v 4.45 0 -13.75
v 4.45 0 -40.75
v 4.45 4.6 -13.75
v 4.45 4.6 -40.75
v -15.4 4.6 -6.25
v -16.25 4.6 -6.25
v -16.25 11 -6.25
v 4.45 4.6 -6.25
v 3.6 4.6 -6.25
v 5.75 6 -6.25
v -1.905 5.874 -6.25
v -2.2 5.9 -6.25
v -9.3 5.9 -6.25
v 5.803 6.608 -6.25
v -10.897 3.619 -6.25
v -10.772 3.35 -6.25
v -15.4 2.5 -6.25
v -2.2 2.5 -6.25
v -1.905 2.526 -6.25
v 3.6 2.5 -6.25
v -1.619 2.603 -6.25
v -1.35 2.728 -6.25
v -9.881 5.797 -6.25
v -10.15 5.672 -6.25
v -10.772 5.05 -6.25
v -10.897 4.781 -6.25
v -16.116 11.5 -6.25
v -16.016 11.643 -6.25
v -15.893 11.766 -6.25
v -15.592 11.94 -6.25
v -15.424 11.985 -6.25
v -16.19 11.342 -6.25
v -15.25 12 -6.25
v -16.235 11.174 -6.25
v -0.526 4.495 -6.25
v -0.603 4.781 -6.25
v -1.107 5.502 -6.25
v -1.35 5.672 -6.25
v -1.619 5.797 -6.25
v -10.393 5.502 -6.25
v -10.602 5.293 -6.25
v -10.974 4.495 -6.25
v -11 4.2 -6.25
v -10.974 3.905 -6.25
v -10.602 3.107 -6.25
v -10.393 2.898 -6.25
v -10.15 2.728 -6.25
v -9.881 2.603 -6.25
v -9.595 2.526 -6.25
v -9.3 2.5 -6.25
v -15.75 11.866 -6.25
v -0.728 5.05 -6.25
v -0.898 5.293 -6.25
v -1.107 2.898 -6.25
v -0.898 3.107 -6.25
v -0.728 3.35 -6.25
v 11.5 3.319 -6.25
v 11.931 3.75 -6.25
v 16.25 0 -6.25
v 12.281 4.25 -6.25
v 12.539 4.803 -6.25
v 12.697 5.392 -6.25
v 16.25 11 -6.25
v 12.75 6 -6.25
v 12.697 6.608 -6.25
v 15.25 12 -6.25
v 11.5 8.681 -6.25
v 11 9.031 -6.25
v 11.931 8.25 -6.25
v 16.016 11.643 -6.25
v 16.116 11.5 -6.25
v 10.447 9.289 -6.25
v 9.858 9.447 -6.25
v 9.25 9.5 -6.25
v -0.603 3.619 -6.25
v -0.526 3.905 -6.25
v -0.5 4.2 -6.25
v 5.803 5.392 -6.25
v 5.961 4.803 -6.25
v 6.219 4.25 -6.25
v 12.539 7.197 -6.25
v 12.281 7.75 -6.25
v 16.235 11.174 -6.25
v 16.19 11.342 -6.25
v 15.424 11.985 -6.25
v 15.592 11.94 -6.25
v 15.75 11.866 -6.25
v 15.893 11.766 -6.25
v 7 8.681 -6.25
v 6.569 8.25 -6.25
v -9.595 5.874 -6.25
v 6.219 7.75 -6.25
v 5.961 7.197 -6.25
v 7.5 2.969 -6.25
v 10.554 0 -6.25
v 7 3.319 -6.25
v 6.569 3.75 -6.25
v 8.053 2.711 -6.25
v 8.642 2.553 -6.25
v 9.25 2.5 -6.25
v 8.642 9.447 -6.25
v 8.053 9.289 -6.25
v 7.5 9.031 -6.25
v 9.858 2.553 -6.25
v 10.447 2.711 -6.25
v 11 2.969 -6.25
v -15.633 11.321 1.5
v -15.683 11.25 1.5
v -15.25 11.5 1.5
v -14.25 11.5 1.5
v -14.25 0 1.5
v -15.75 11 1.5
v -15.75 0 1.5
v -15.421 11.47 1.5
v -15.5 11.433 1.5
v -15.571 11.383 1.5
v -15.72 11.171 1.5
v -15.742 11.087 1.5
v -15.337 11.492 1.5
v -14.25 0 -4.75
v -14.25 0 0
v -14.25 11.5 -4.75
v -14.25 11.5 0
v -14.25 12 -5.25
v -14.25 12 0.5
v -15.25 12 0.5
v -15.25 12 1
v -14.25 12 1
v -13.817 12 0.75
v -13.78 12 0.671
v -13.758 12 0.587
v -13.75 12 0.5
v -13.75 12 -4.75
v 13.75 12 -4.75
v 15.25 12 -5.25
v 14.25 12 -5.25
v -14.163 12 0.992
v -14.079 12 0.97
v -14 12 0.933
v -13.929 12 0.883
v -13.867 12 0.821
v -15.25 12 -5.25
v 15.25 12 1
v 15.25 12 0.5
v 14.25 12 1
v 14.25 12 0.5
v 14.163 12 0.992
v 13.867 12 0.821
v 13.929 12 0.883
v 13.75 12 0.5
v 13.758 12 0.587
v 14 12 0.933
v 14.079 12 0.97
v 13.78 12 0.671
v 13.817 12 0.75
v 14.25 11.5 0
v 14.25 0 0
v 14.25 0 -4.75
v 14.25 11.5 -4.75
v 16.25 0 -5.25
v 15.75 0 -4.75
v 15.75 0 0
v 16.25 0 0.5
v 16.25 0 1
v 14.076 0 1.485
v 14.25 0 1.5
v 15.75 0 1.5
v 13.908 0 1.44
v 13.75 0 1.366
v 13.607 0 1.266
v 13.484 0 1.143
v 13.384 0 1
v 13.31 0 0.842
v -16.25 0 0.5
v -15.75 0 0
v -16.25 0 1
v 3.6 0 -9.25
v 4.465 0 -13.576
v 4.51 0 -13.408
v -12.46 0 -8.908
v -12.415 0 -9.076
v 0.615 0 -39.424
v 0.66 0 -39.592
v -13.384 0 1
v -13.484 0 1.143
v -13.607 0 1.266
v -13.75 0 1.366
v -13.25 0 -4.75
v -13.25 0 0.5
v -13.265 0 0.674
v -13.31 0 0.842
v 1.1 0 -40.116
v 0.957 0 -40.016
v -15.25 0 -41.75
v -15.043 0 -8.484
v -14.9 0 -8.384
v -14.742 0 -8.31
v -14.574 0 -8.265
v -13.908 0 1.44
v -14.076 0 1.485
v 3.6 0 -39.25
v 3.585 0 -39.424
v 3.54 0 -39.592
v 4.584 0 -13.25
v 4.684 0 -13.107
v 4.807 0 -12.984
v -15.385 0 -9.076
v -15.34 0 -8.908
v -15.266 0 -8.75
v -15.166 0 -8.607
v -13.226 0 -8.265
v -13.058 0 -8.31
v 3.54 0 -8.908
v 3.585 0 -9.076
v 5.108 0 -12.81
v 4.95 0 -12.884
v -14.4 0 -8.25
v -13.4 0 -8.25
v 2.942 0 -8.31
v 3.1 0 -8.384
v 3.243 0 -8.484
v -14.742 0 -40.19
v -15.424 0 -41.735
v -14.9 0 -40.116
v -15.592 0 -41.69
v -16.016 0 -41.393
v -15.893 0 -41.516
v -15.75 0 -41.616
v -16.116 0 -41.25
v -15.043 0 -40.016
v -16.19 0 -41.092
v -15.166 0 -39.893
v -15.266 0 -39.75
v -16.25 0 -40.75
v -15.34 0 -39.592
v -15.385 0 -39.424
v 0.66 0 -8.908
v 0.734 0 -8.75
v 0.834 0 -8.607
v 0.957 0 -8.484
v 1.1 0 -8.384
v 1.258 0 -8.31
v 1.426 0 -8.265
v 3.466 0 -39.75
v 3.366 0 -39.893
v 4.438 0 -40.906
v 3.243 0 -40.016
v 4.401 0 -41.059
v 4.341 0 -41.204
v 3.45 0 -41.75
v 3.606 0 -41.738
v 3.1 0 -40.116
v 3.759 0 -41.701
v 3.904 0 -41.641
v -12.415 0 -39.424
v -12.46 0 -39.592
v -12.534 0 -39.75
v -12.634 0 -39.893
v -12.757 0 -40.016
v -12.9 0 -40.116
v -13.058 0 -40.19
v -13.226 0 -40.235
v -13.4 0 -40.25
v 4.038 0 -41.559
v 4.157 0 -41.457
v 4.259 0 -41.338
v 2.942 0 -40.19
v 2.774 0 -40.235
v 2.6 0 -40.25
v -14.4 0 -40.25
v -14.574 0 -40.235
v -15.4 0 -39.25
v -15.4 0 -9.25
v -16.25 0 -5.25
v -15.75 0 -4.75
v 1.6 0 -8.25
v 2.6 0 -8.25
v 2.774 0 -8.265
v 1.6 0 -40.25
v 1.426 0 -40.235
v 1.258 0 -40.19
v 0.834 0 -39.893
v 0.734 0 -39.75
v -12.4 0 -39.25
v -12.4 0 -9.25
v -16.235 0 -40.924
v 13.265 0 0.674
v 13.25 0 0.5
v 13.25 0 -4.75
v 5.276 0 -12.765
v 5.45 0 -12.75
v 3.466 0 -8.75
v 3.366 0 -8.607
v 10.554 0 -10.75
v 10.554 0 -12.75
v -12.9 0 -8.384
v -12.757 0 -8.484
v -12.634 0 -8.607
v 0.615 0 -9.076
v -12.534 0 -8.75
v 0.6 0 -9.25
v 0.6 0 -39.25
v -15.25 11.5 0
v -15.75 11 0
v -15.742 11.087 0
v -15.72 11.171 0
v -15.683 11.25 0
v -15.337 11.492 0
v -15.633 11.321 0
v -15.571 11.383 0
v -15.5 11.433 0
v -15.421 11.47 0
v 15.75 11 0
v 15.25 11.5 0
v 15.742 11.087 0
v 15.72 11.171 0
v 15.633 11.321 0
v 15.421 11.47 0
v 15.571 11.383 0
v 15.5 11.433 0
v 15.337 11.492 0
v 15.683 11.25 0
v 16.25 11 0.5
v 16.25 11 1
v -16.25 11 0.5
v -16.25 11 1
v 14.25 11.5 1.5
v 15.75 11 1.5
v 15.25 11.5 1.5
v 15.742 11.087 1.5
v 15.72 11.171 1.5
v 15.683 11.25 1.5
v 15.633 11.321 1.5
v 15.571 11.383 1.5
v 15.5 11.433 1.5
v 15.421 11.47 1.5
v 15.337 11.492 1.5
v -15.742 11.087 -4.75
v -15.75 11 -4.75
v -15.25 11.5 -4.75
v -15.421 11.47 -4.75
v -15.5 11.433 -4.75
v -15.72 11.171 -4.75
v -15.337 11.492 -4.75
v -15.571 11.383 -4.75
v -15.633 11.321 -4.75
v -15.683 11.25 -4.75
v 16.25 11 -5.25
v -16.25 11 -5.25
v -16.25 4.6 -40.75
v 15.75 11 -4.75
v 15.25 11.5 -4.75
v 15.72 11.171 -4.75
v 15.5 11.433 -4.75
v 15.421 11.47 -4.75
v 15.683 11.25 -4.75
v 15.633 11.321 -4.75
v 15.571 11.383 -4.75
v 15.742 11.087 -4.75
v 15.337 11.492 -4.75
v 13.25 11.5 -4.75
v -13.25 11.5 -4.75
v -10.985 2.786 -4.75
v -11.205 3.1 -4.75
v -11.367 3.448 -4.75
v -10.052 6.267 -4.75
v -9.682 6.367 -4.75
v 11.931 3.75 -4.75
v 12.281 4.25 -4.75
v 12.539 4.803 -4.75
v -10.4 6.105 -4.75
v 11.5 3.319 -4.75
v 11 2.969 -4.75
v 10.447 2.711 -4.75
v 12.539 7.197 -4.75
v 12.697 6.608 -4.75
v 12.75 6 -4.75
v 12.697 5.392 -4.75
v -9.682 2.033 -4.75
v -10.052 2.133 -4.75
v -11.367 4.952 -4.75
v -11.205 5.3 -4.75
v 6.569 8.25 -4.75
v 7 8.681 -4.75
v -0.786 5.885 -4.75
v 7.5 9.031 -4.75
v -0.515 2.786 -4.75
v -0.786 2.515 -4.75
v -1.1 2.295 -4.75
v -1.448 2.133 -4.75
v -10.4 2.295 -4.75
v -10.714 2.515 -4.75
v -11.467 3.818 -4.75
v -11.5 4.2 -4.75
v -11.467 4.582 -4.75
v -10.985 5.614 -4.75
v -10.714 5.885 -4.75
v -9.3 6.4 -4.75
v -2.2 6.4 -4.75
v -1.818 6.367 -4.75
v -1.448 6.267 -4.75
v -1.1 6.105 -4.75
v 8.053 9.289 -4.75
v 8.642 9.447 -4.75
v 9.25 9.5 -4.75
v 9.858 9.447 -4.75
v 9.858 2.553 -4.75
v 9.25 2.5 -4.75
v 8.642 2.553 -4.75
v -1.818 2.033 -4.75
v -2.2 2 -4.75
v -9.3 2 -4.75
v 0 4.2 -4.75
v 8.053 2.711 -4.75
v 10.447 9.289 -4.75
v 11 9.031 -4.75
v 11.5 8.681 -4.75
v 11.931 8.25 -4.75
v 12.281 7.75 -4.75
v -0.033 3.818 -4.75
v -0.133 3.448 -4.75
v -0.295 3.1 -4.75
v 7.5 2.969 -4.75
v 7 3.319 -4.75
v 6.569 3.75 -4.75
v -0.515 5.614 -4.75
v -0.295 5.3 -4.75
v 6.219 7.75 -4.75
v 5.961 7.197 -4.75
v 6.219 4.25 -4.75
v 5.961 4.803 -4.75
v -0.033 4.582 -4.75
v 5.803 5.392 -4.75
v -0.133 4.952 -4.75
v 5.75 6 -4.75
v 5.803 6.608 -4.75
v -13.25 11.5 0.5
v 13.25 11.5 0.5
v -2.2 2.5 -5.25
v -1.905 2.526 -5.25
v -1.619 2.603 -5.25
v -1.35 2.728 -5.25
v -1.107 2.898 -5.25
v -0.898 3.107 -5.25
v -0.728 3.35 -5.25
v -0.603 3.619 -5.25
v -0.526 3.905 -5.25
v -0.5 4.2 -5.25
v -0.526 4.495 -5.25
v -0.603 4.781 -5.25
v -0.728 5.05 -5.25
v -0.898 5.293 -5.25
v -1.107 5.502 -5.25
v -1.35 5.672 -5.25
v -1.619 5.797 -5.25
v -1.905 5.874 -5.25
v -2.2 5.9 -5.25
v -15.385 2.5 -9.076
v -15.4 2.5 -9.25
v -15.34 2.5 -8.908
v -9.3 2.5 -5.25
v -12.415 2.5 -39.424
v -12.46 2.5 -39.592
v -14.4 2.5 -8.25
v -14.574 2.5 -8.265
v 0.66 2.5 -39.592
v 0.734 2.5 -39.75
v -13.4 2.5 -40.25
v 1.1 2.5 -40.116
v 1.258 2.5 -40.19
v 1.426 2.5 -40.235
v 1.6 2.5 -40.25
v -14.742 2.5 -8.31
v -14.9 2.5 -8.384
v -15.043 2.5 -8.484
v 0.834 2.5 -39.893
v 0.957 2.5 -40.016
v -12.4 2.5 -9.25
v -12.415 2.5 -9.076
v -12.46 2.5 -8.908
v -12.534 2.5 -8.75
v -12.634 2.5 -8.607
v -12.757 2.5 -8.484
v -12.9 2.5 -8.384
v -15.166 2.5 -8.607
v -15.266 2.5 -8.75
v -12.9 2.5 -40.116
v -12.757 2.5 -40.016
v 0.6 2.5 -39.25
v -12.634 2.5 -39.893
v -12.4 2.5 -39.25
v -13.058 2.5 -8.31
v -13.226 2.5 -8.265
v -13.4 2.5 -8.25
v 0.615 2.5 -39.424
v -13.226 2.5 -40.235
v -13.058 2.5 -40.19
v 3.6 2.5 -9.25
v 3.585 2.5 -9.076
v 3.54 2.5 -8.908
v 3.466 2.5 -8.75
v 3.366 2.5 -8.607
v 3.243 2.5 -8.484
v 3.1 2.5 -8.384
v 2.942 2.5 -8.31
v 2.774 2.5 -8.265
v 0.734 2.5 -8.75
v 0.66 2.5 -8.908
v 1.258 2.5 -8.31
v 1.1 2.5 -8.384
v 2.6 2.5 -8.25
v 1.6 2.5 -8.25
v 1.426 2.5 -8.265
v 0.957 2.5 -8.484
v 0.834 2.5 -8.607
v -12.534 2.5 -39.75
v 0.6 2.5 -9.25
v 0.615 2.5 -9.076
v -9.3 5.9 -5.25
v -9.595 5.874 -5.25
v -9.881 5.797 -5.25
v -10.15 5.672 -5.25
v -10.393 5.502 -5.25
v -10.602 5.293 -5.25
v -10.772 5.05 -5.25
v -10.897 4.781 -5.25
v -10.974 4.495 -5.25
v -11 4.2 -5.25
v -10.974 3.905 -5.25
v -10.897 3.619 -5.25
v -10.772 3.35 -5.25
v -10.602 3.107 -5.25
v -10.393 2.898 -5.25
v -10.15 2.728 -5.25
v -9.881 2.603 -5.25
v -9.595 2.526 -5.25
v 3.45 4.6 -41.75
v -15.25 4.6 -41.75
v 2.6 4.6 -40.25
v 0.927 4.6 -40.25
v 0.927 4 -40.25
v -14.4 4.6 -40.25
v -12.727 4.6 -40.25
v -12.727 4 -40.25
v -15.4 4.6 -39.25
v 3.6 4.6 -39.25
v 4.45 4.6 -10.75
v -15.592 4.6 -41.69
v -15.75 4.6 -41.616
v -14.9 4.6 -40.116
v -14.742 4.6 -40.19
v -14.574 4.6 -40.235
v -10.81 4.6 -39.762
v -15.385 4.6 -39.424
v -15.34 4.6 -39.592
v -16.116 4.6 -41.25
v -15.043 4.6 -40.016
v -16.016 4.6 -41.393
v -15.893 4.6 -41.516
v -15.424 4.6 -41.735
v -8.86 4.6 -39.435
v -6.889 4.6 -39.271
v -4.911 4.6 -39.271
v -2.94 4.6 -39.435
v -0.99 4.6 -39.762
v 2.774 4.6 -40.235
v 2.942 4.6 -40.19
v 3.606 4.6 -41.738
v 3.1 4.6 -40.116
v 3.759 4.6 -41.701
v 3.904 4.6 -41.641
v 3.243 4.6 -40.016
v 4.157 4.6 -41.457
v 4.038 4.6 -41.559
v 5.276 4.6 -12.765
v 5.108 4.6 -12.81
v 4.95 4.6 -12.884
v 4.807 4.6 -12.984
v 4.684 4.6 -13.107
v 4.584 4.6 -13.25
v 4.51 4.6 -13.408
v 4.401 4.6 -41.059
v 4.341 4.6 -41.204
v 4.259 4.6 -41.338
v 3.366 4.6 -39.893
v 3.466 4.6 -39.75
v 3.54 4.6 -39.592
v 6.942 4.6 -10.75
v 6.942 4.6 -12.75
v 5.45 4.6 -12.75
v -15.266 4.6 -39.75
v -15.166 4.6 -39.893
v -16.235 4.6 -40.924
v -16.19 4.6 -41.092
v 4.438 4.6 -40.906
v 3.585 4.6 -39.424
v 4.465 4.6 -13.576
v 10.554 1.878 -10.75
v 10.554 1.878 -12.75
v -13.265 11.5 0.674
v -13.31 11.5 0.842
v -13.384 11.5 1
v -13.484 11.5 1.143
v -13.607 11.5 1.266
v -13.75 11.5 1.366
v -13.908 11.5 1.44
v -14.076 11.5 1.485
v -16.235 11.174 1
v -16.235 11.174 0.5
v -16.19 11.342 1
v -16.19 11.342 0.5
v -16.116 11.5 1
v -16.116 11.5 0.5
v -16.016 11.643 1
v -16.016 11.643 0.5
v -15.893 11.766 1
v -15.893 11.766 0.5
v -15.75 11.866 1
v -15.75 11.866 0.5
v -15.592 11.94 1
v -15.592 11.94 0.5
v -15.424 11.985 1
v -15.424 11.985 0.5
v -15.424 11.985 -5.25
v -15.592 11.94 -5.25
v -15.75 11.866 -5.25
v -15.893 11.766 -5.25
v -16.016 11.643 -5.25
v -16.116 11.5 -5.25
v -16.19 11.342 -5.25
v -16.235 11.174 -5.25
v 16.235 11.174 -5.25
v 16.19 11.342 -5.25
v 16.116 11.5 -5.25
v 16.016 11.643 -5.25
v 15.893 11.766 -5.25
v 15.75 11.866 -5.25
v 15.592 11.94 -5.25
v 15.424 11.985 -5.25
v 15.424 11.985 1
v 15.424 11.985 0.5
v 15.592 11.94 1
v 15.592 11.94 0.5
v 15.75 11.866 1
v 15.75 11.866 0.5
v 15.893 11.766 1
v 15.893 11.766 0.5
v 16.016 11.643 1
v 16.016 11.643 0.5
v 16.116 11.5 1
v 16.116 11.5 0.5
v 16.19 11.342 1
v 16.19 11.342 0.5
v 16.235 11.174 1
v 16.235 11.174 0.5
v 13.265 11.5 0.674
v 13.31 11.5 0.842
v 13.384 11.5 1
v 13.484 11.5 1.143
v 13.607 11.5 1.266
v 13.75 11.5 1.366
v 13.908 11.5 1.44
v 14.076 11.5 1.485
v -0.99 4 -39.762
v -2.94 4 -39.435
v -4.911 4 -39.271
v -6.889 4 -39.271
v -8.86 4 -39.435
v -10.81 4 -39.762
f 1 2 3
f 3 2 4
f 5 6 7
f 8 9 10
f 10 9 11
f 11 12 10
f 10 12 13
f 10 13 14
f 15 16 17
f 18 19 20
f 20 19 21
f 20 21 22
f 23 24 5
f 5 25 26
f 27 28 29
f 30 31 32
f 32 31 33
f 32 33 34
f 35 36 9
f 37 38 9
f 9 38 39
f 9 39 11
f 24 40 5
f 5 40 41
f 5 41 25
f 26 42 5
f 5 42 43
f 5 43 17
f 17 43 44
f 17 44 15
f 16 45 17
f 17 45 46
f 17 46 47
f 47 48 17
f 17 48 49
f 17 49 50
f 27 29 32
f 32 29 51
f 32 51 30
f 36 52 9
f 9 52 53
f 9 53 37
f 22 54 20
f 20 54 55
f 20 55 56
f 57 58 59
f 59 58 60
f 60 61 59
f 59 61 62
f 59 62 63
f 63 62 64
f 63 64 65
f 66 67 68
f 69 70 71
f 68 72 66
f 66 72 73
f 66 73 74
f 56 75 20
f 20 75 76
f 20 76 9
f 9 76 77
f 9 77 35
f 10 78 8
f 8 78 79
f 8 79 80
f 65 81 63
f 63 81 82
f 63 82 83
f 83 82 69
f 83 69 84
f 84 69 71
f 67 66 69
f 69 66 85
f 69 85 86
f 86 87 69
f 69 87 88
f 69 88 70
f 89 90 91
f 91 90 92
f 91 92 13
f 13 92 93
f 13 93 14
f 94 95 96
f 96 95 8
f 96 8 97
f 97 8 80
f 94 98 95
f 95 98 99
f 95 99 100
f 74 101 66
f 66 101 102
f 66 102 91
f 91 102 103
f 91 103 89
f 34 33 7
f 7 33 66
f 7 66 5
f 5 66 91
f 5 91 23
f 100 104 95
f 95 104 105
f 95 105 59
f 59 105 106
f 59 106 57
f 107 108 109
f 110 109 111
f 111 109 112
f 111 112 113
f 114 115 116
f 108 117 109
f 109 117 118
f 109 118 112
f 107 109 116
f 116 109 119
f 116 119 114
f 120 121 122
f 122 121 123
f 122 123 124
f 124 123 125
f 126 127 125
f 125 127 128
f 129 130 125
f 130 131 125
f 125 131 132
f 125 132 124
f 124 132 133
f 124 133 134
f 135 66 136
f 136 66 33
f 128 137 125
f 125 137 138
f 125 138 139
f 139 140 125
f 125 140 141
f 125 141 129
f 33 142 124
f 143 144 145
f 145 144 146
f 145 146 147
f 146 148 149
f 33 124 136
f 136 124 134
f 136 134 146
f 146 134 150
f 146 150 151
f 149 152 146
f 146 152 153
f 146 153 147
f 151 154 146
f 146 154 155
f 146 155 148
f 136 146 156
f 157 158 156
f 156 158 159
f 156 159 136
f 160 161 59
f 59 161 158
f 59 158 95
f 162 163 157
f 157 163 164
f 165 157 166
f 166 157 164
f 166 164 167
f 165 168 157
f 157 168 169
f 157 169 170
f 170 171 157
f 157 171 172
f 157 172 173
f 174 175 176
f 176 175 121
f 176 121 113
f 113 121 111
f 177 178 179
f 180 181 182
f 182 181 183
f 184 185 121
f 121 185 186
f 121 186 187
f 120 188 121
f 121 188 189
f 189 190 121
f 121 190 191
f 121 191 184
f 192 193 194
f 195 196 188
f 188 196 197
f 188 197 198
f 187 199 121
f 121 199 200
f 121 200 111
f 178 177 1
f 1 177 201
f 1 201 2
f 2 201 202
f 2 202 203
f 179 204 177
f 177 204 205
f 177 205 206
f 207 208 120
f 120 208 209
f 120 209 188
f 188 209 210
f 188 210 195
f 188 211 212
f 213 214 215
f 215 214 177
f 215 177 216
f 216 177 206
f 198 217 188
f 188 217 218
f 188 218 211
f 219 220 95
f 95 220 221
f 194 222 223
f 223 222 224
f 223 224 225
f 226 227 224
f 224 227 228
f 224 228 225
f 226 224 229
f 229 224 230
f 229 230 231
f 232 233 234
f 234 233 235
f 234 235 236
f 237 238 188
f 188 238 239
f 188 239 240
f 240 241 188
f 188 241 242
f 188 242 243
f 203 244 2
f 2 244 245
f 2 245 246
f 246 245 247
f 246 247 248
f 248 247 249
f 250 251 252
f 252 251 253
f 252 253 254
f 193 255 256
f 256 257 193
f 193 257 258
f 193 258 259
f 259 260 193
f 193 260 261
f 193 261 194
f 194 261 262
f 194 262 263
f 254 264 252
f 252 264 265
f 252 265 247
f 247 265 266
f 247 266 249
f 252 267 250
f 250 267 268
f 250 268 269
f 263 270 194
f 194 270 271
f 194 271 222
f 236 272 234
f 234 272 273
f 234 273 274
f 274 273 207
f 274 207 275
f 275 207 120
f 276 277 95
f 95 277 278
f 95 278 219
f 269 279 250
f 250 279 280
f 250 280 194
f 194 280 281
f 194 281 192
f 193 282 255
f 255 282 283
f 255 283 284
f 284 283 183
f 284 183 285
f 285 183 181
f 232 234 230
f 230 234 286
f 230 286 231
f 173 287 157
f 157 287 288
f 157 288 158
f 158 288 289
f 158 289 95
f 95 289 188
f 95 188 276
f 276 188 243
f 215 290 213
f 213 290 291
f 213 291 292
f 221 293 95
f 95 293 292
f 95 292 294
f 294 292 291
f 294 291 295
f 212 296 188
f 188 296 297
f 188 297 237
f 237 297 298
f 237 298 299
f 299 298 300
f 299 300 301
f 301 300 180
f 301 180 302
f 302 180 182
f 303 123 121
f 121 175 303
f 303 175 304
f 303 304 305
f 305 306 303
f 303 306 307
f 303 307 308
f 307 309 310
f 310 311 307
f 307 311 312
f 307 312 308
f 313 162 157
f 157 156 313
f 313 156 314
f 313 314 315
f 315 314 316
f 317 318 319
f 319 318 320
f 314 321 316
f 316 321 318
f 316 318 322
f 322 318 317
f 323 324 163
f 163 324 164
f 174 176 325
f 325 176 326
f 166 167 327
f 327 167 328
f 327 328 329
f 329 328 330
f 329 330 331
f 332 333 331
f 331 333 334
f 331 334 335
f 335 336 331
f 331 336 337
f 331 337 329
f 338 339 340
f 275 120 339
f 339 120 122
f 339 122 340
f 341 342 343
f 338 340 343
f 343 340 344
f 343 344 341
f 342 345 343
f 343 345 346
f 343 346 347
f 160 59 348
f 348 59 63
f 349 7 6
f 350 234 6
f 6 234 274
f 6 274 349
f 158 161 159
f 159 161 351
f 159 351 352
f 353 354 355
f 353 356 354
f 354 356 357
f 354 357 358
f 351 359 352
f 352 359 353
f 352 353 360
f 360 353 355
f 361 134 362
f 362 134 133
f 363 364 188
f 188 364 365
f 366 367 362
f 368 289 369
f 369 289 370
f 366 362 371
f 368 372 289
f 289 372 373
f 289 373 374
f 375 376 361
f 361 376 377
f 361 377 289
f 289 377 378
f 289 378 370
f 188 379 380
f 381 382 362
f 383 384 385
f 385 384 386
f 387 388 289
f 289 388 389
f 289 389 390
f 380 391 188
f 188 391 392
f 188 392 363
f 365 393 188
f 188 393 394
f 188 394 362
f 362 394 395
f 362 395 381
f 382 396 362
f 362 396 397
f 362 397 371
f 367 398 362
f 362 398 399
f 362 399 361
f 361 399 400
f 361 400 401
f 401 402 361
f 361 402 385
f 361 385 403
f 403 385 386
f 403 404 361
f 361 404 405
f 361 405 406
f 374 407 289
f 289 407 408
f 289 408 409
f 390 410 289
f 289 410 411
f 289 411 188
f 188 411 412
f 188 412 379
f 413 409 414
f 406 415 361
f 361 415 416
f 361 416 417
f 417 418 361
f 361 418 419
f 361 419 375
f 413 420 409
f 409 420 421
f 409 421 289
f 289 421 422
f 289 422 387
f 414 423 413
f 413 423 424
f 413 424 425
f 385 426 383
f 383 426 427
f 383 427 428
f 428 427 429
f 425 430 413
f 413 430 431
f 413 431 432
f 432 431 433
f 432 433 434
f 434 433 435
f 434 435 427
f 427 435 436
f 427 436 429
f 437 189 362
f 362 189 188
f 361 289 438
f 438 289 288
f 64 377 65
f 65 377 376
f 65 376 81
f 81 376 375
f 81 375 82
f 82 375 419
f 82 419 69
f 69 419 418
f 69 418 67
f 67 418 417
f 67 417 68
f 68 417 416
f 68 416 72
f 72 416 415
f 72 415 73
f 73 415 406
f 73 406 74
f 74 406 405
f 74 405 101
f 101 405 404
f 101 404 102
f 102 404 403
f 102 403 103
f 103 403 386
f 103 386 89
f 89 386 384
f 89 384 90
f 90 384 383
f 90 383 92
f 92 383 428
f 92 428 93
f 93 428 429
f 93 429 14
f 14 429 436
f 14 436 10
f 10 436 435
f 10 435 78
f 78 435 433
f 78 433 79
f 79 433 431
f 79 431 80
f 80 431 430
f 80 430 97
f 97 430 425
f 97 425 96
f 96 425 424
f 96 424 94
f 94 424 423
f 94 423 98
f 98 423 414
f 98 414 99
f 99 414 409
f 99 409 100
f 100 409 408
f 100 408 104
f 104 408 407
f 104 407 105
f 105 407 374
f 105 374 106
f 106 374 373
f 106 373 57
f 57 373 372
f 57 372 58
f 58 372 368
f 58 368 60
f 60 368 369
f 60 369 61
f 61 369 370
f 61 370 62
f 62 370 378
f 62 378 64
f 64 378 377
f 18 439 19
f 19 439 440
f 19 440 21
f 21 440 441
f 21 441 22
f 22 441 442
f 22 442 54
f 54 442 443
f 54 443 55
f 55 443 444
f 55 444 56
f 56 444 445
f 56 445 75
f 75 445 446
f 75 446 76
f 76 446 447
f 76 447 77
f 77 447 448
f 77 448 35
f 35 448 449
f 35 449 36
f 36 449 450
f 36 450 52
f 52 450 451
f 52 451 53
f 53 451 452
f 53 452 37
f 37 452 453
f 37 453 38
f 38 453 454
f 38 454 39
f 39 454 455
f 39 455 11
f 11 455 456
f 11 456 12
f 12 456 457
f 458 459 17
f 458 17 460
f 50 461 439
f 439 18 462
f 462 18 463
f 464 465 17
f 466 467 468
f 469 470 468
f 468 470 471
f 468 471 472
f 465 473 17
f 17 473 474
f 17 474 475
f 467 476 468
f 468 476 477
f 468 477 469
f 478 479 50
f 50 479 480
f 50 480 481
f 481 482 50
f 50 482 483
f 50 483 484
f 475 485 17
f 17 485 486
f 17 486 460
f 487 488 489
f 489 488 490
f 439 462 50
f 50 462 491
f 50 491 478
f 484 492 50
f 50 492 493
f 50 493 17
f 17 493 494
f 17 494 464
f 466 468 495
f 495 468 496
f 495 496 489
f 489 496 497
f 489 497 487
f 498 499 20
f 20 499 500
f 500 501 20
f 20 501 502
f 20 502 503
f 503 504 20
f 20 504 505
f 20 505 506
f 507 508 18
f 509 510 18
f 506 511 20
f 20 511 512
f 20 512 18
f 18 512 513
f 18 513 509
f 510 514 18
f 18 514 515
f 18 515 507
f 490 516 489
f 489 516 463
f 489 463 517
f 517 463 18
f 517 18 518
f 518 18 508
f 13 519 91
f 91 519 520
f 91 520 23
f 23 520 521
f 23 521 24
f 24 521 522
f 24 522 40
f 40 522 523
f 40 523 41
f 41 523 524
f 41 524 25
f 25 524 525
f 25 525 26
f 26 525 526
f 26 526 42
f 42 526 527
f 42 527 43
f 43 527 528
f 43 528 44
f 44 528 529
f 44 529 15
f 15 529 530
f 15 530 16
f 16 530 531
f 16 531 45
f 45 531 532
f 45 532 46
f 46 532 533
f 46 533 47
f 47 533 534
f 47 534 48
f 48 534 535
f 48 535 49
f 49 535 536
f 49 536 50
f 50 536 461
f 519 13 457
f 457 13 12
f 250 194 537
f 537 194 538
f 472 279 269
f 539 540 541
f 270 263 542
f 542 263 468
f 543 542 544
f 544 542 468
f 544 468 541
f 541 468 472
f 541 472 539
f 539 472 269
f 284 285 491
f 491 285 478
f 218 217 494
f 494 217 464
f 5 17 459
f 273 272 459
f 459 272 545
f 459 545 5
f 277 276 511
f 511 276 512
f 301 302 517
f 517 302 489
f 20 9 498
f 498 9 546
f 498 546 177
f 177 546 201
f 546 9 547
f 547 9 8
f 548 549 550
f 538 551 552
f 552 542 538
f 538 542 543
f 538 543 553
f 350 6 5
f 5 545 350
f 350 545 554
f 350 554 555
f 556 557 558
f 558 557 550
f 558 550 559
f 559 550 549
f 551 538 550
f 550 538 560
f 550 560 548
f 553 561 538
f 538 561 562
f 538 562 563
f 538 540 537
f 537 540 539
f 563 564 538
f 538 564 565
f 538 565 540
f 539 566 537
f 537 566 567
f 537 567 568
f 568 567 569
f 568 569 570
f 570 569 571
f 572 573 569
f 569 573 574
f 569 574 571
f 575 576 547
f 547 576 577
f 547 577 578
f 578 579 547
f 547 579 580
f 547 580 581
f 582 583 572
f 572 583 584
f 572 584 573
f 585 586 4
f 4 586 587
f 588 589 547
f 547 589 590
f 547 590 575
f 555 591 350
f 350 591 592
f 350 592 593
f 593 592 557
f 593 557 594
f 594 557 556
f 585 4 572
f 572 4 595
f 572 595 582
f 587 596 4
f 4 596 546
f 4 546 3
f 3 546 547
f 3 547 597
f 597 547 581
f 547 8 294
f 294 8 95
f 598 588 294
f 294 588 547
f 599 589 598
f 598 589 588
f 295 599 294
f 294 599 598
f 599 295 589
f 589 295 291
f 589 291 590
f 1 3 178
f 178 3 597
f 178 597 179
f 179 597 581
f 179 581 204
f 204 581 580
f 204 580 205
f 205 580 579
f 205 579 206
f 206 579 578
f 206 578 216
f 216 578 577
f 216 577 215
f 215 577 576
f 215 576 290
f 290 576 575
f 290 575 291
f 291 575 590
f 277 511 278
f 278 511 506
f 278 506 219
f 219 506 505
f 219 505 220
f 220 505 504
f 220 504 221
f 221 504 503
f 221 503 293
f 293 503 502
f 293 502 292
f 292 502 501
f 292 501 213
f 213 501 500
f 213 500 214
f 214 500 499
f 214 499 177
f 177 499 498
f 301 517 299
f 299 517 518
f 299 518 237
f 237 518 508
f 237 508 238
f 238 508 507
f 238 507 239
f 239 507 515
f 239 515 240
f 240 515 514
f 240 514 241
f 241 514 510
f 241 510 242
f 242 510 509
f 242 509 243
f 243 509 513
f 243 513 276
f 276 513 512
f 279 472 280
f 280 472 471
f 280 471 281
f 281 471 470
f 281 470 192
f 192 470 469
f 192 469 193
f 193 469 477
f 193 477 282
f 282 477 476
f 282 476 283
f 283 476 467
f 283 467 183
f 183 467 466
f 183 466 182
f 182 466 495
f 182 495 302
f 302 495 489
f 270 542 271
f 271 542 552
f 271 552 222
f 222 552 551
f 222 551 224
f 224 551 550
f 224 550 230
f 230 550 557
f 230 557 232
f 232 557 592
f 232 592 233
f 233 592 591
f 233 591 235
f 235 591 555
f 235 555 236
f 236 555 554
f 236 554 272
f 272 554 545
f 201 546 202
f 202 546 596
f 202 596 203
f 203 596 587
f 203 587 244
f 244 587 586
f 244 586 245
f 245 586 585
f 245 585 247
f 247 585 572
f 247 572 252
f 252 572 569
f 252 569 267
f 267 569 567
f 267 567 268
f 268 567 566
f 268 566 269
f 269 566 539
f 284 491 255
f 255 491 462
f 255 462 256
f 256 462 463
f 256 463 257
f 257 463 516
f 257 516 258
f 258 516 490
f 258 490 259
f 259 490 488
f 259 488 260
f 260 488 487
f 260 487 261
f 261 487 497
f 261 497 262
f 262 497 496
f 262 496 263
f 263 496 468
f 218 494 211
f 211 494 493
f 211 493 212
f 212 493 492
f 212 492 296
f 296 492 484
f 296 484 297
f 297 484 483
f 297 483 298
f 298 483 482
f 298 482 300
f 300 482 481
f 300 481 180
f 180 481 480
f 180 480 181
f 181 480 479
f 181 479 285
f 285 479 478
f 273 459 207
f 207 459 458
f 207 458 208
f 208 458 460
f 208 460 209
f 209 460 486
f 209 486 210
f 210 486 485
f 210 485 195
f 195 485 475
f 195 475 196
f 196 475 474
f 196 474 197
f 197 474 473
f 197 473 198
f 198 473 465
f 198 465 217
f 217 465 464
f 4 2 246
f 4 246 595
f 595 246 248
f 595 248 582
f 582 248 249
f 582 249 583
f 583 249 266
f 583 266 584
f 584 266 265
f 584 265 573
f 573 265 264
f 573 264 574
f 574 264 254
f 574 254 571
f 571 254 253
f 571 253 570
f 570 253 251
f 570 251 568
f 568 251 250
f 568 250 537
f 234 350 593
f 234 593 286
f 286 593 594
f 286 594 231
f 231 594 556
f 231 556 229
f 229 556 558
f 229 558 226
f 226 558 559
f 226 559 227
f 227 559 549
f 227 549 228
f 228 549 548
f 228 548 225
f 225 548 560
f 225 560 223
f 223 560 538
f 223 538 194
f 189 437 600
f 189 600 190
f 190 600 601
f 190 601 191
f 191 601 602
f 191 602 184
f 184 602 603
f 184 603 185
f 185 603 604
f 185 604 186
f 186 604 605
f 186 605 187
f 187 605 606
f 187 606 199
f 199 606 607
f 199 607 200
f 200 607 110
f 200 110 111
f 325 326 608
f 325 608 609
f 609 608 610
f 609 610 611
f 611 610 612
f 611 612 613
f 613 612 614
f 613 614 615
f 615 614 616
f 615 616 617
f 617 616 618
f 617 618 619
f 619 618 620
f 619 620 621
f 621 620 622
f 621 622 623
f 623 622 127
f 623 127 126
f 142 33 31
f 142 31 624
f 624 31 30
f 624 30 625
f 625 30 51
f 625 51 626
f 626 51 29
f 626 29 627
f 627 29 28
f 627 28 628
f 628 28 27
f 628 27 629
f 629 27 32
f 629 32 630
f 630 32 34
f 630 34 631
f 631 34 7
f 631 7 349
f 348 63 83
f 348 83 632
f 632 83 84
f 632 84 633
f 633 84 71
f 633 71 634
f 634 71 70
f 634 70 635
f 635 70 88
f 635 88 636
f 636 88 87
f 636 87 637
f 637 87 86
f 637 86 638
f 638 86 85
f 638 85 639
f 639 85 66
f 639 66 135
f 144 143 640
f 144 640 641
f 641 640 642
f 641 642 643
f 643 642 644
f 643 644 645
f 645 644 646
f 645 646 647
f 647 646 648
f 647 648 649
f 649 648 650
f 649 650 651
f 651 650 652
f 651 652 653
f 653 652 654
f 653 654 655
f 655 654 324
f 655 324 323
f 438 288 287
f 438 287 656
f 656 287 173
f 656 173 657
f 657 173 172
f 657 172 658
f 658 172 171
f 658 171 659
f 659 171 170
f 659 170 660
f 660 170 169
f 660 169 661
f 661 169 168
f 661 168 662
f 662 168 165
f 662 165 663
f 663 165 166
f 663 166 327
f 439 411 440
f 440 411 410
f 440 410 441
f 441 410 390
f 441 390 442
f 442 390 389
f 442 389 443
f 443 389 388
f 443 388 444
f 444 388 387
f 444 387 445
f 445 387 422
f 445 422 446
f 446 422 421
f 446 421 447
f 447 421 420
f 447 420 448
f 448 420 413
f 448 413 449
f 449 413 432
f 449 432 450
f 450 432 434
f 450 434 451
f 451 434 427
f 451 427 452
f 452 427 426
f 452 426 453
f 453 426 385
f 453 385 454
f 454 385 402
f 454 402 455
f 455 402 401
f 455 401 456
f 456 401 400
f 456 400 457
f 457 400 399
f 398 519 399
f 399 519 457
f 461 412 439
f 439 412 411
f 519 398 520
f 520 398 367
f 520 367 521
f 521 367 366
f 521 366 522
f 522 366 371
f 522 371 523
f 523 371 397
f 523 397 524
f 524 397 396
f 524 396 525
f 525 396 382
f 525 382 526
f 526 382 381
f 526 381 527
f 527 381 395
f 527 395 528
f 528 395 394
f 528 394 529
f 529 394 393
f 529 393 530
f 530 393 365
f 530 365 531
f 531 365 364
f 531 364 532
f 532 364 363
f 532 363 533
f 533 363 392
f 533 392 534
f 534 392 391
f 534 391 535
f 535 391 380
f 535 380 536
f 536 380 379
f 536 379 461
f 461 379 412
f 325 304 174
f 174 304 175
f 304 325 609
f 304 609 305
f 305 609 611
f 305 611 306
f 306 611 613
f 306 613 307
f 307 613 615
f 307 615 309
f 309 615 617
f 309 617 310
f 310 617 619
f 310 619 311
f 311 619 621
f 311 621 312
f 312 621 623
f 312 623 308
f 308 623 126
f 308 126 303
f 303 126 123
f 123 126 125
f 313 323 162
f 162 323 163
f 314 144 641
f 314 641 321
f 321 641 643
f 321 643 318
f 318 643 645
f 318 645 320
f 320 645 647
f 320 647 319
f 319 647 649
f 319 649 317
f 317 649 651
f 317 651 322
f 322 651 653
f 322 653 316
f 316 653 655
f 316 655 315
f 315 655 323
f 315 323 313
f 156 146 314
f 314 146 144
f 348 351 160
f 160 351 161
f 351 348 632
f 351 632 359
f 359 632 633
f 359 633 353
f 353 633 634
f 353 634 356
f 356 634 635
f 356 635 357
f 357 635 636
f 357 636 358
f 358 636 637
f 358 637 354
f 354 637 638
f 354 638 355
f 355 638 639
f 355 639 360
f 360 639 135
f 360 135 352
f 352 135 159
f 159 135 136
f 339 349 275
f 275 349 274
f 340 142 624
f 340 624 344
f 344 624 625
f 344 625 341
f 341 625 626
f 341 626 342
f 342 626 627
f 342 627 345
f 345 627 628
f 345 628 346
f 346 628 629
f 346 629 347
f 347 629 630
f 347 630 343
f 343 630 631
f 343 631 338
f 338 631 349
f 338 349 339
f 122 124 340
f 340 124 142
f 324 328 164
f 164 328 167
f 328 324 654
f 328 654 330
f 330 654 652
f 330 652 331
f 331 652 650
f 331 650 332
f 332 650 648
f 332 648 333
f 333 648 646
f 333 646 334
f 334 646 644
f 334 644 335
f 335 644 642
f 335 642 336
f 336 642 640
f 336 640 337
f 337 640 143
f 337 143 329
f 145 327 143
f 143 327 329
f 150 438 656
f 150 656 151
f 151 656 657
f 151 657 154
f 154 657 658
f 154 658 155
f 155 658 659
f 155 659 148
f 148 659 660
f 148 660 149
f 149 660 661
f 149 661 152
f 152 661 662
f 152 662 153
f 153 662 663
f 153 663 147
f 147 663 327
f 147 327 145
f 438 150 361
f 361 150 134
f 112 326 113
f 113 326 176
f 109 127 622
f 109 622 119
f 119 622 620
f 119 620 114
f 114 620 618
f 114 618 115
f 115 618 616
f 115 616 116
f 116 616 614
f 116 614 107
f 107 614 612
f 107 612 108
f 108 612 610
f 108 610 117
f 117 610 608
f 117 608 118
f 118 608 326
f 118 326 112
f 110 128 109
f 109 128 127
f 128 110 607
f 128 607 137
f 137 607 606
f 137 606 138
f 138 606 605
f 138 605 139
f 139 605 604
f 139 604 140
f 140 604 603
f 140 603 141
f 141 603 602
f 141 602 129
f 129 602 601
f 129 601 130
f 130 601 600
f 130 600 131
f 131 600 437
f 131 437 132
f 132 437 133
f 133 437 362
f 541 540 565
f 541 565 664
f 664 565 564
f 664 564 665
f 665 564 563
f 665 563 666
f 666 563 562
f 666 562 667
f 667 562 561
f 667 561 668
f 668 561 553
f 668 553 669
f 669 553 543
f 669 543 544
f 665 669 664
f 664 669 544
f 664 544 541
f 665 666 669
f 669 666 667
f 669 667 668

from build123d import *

# Parameters (mm, degrees)
SKETCH1_W                  = 28.5
SKETCH1_H                  = 12
BOSS_EXTRUDE1_DEPTH        = 4.75
SKETCH2_W                  = 32.5
SKETCH2_H                  = 12
BOSS_EXTRUDE2_DEPTH        = 1.5
SKETCH3_W                  = 32.5
SKETCH3_H                  = 12
BOSS_EXTRUDE3_DEPTH        = 1.5
SKETCH4_W                  = 26.5
SKETCH4_H                  = 12
CUT_EXTRUDE1_DEPTH         = 6.25
SKETCH5_R                  = 3.5
CUTOUTS_DEPTH              = 10
SKETCH6_W                  = 20.7
SKETCH6_H                  = 35.5
SKETCH6_W_2                = 3
SKETCH6_H_2                = 32
MC_TRAY_BOSS_DEPTH         = 4.6
MC_START                   = -2.1
SKETCH7_W                  = 19
SKETCH7_H                  = 34
MC_TRAY_INTERIOR_CUT_DEPTH = 2.1
SWITCH_TRIANGLE_DEPTH      = 4.5
SWITCH_TAB_DEPTH           = 2
FILLET1_R                  = 1
CHAMFER1_SIZE              = 0.5
BOSS_EXTRUDE7_DEPTH        = 0.6


with BuildPart() as part:
    # Sketch1 → Boss-Extrude1 (new body)
    with BuildSketch(Plane.XY):
        with Locations((0, 6)):
            Rectangle(SKETCH1_W, SKETCH1_H)
    extrude(amount=-BOSS_EXTRUDE1_DEPTH)

    # Sketch2 → Boss-Extrude2 (add)
    with BuildSketch(Plane.XY):
        with Locations((0, 6)):
            Rectangle(SKETCH2_W, SKETCH2_H)
    extrude(amount=BOSS_EXTRUDE2_DEPTH)

    # Sketch3 → Boss-Extrude3 (add)
    with BuildSketch(Plane(origin=(0, 0, -4.75), x_dir=(-1, 0, 0), z_dir=(0, 0, -1))):
        with Locations((0, 6)):
            Rectangle(SKETCH3_W, SKETCH3_H)
    extrude(amount=BOSS_EXTRUDE3_DEPTH)

    # Sketch4 → Cut-Extrude1 (cut)
    with BuildSketch(Plane.XY.offset(1.5)):
        with Locations((0, 6)):
            Rectangle(SKETCH4_W, SKETCH4_H)
    extrude(amount=-CUT_EXTRUDE1_DEPTH, mode=Mode.SUBTRACT)

    # Sketch5 → Cutouts (cut)
    with BuildSketch(Plane.XY.offset(-4.75)):
        with Locations((9.25, 6)):
            Circle(SKETCH5_R)
        with BuildLine():
            Line((-9.3, 5.9), (-2.2, 5.9))
            ThreePointArc((-2.2, 5.9), (-0.5, 4.2), (-2.2, 2.5))
            Line((-2.2, 2.5), (-9.3, 2.5))
            ThreePointArc((-9.3, 2.5), (-11, 4.2), (-9.3, 5.9))
        make_face()
    extrude(amount=-CUTOUTS_DEPTH, mode=Mode.SUBTRACT)

    # Sketch6 → MC Tray Boss (add)
    with BuildSketch(Plane.XZ):
        with Locations((-5.9, -24)):
            Rectangle(SKETCH6_W, SKETCH6_H)
        with Locations((-13.9, -24.25)):
            Rectangle(SKETCH6_W_2, SKETCH6_H_2, mode=Mode.SUBTRACT)
        with Locations((2.1, -24.25)):
            Rectangle(SKETCH6_W_2, SKETCH6_H_2, mode=Mode.SUBTRACT)
    extrude(amount=-MC_TRAY_BOSS_DEPTH)

    # Sketch7 → MC Tray Interior Cut (cut)
    with BuildSketch(Plane(origin=(0, 4.6, 0), x_dir=(1, 0, 0), z_dir=(0, 1, 0)).offset(MC_START)):
        with Locations((-5.9, 23.25)):
            Rectangle(SKETCH7_W, SKETCH7_H)
    extrude(amount=MC_TRAY_INTERIOR_CUT_DEPTH, mode=Mode.SUBTRACT)

    # Sketch8 → Switch Triangle (add)
    with BuildSketch(Plane(origin=(0, 0, -6.25), x_dir=(-1, 0, 0), z_dir=(0, 0, -1))):
        Polygon((-4.45, 4.6), (-4.45, 0), (-10.554406179, 0), align=None)
    extrude(amount=SWITCH_TRIANGLE_DEPTH)

    # Sketch9 → Switch Tab (add)
    with BuildSketch(Plane(origin=(0, 0, -10.75), x_dir=(-1, 0, 0), z_dir=(0, 0, -1))):
        Polygon((-4.45, 4.6), (-6.942460212, 4.6), (-10.554406179, 1.878203487), (-10.554406179, 0), (-4.45, 0), align=None)
    extrude(amount=SWITCH_TAB_DEPTH)

    # Fillet1
    fillet1_edges = [part.edges().sort_by_distance(p)[0] for p in [
        (3.6, 1.25, -8.25),
        (0.6, 1.25, -40.25),
        (0.6, 1.25, -8.25),
        (-15.4, 1.25, -8.25),
        (-12.4, 1.25, -8.25),
        (-12.4, 1.25, -40.25),
        (16.25, 12, 0.75),
        (-16.25, 12, 0.75),
        (4.45, 2.3, -12.75),
        (16.25, 12, -5.5),
        (-16.25, 12, -5.5),
        (-13.25, 6, 1.5),
        (13.25, 6, 1.5),
        (4.45, 2.3, -41.75),
        (-16.25, 2.3, -41.75),
        (-15.4, 2.3, -40.25),
        (3.6, 2.3, -40.25),
    ]]
    fillet(fillet1_edges, radius=FILLET1_R)

    # Chamfer1
    chamfer1_edges = [part.edges().sort_by_distance(p)[0] for p in [
        (13.25, 12, -2.125),
        (13.542893219, 12, 1.207106781),
        (14.75, 12, 1.5),
        (15.957106781, 11.707106781, 1.5),
        (16.25, 5.5, 1.5),
        (-13.25, 12, -2.125),
        (-13.542893219, 12, 1.207106781),
        (-14.75, 12, 1.5),
        (-15.957106781, 11.707106781, 1.5),
        (-16.25, 5.5, 1.5),
        (-14.75, 12, 0),
        (-15.957106781, 11.707106781, 0),
        (-16.25, 5.5, 0),
        (14.75, 12, 0),
        (15.957106781, 11.707106781, 0),
        (16.25, 5.5, 0),
        (14.75, 12, -4.75),
        (15.957106781, 11.707106781, -4.75),
        (16.25, 5.5, -4.75),
        (-14.75, 12, -4.75),
        (-15.957106781, 11.707106781, -4.75),
        (-16.25, 5.5, -4.75),
        (-11, 4.2, -4.75),
        (-5.75, 2.5, -4.75),
        (-5.75, 5.9, -4.75),
        (-0.5, 4.2, -4.75),
    ]]
    chamfer(chamfer1_edges, length=CHAMFER1_SIZE)

    # Sketch10 → Boss-Extrude7 (add)
    with BuildSketch(Plane(origin=(0, 4.6, 0), x_dir=(1, 0, 0), z_dir=(0, 1, 0))):
        with BuildLine():
            Line((-12.726938069, 40.25), (-5.9, 40.25))
            Line((-5.9, 40.25), (0.926938069, 40.25))
            ThreePointArc((0.926938069, 40.25), (-5.9, 39.25), (-12.726938069, 40.25))
        make_face()
    extrude(amount=-BOSS_EXTRUDE7_DEPTH)


solid = part.part
